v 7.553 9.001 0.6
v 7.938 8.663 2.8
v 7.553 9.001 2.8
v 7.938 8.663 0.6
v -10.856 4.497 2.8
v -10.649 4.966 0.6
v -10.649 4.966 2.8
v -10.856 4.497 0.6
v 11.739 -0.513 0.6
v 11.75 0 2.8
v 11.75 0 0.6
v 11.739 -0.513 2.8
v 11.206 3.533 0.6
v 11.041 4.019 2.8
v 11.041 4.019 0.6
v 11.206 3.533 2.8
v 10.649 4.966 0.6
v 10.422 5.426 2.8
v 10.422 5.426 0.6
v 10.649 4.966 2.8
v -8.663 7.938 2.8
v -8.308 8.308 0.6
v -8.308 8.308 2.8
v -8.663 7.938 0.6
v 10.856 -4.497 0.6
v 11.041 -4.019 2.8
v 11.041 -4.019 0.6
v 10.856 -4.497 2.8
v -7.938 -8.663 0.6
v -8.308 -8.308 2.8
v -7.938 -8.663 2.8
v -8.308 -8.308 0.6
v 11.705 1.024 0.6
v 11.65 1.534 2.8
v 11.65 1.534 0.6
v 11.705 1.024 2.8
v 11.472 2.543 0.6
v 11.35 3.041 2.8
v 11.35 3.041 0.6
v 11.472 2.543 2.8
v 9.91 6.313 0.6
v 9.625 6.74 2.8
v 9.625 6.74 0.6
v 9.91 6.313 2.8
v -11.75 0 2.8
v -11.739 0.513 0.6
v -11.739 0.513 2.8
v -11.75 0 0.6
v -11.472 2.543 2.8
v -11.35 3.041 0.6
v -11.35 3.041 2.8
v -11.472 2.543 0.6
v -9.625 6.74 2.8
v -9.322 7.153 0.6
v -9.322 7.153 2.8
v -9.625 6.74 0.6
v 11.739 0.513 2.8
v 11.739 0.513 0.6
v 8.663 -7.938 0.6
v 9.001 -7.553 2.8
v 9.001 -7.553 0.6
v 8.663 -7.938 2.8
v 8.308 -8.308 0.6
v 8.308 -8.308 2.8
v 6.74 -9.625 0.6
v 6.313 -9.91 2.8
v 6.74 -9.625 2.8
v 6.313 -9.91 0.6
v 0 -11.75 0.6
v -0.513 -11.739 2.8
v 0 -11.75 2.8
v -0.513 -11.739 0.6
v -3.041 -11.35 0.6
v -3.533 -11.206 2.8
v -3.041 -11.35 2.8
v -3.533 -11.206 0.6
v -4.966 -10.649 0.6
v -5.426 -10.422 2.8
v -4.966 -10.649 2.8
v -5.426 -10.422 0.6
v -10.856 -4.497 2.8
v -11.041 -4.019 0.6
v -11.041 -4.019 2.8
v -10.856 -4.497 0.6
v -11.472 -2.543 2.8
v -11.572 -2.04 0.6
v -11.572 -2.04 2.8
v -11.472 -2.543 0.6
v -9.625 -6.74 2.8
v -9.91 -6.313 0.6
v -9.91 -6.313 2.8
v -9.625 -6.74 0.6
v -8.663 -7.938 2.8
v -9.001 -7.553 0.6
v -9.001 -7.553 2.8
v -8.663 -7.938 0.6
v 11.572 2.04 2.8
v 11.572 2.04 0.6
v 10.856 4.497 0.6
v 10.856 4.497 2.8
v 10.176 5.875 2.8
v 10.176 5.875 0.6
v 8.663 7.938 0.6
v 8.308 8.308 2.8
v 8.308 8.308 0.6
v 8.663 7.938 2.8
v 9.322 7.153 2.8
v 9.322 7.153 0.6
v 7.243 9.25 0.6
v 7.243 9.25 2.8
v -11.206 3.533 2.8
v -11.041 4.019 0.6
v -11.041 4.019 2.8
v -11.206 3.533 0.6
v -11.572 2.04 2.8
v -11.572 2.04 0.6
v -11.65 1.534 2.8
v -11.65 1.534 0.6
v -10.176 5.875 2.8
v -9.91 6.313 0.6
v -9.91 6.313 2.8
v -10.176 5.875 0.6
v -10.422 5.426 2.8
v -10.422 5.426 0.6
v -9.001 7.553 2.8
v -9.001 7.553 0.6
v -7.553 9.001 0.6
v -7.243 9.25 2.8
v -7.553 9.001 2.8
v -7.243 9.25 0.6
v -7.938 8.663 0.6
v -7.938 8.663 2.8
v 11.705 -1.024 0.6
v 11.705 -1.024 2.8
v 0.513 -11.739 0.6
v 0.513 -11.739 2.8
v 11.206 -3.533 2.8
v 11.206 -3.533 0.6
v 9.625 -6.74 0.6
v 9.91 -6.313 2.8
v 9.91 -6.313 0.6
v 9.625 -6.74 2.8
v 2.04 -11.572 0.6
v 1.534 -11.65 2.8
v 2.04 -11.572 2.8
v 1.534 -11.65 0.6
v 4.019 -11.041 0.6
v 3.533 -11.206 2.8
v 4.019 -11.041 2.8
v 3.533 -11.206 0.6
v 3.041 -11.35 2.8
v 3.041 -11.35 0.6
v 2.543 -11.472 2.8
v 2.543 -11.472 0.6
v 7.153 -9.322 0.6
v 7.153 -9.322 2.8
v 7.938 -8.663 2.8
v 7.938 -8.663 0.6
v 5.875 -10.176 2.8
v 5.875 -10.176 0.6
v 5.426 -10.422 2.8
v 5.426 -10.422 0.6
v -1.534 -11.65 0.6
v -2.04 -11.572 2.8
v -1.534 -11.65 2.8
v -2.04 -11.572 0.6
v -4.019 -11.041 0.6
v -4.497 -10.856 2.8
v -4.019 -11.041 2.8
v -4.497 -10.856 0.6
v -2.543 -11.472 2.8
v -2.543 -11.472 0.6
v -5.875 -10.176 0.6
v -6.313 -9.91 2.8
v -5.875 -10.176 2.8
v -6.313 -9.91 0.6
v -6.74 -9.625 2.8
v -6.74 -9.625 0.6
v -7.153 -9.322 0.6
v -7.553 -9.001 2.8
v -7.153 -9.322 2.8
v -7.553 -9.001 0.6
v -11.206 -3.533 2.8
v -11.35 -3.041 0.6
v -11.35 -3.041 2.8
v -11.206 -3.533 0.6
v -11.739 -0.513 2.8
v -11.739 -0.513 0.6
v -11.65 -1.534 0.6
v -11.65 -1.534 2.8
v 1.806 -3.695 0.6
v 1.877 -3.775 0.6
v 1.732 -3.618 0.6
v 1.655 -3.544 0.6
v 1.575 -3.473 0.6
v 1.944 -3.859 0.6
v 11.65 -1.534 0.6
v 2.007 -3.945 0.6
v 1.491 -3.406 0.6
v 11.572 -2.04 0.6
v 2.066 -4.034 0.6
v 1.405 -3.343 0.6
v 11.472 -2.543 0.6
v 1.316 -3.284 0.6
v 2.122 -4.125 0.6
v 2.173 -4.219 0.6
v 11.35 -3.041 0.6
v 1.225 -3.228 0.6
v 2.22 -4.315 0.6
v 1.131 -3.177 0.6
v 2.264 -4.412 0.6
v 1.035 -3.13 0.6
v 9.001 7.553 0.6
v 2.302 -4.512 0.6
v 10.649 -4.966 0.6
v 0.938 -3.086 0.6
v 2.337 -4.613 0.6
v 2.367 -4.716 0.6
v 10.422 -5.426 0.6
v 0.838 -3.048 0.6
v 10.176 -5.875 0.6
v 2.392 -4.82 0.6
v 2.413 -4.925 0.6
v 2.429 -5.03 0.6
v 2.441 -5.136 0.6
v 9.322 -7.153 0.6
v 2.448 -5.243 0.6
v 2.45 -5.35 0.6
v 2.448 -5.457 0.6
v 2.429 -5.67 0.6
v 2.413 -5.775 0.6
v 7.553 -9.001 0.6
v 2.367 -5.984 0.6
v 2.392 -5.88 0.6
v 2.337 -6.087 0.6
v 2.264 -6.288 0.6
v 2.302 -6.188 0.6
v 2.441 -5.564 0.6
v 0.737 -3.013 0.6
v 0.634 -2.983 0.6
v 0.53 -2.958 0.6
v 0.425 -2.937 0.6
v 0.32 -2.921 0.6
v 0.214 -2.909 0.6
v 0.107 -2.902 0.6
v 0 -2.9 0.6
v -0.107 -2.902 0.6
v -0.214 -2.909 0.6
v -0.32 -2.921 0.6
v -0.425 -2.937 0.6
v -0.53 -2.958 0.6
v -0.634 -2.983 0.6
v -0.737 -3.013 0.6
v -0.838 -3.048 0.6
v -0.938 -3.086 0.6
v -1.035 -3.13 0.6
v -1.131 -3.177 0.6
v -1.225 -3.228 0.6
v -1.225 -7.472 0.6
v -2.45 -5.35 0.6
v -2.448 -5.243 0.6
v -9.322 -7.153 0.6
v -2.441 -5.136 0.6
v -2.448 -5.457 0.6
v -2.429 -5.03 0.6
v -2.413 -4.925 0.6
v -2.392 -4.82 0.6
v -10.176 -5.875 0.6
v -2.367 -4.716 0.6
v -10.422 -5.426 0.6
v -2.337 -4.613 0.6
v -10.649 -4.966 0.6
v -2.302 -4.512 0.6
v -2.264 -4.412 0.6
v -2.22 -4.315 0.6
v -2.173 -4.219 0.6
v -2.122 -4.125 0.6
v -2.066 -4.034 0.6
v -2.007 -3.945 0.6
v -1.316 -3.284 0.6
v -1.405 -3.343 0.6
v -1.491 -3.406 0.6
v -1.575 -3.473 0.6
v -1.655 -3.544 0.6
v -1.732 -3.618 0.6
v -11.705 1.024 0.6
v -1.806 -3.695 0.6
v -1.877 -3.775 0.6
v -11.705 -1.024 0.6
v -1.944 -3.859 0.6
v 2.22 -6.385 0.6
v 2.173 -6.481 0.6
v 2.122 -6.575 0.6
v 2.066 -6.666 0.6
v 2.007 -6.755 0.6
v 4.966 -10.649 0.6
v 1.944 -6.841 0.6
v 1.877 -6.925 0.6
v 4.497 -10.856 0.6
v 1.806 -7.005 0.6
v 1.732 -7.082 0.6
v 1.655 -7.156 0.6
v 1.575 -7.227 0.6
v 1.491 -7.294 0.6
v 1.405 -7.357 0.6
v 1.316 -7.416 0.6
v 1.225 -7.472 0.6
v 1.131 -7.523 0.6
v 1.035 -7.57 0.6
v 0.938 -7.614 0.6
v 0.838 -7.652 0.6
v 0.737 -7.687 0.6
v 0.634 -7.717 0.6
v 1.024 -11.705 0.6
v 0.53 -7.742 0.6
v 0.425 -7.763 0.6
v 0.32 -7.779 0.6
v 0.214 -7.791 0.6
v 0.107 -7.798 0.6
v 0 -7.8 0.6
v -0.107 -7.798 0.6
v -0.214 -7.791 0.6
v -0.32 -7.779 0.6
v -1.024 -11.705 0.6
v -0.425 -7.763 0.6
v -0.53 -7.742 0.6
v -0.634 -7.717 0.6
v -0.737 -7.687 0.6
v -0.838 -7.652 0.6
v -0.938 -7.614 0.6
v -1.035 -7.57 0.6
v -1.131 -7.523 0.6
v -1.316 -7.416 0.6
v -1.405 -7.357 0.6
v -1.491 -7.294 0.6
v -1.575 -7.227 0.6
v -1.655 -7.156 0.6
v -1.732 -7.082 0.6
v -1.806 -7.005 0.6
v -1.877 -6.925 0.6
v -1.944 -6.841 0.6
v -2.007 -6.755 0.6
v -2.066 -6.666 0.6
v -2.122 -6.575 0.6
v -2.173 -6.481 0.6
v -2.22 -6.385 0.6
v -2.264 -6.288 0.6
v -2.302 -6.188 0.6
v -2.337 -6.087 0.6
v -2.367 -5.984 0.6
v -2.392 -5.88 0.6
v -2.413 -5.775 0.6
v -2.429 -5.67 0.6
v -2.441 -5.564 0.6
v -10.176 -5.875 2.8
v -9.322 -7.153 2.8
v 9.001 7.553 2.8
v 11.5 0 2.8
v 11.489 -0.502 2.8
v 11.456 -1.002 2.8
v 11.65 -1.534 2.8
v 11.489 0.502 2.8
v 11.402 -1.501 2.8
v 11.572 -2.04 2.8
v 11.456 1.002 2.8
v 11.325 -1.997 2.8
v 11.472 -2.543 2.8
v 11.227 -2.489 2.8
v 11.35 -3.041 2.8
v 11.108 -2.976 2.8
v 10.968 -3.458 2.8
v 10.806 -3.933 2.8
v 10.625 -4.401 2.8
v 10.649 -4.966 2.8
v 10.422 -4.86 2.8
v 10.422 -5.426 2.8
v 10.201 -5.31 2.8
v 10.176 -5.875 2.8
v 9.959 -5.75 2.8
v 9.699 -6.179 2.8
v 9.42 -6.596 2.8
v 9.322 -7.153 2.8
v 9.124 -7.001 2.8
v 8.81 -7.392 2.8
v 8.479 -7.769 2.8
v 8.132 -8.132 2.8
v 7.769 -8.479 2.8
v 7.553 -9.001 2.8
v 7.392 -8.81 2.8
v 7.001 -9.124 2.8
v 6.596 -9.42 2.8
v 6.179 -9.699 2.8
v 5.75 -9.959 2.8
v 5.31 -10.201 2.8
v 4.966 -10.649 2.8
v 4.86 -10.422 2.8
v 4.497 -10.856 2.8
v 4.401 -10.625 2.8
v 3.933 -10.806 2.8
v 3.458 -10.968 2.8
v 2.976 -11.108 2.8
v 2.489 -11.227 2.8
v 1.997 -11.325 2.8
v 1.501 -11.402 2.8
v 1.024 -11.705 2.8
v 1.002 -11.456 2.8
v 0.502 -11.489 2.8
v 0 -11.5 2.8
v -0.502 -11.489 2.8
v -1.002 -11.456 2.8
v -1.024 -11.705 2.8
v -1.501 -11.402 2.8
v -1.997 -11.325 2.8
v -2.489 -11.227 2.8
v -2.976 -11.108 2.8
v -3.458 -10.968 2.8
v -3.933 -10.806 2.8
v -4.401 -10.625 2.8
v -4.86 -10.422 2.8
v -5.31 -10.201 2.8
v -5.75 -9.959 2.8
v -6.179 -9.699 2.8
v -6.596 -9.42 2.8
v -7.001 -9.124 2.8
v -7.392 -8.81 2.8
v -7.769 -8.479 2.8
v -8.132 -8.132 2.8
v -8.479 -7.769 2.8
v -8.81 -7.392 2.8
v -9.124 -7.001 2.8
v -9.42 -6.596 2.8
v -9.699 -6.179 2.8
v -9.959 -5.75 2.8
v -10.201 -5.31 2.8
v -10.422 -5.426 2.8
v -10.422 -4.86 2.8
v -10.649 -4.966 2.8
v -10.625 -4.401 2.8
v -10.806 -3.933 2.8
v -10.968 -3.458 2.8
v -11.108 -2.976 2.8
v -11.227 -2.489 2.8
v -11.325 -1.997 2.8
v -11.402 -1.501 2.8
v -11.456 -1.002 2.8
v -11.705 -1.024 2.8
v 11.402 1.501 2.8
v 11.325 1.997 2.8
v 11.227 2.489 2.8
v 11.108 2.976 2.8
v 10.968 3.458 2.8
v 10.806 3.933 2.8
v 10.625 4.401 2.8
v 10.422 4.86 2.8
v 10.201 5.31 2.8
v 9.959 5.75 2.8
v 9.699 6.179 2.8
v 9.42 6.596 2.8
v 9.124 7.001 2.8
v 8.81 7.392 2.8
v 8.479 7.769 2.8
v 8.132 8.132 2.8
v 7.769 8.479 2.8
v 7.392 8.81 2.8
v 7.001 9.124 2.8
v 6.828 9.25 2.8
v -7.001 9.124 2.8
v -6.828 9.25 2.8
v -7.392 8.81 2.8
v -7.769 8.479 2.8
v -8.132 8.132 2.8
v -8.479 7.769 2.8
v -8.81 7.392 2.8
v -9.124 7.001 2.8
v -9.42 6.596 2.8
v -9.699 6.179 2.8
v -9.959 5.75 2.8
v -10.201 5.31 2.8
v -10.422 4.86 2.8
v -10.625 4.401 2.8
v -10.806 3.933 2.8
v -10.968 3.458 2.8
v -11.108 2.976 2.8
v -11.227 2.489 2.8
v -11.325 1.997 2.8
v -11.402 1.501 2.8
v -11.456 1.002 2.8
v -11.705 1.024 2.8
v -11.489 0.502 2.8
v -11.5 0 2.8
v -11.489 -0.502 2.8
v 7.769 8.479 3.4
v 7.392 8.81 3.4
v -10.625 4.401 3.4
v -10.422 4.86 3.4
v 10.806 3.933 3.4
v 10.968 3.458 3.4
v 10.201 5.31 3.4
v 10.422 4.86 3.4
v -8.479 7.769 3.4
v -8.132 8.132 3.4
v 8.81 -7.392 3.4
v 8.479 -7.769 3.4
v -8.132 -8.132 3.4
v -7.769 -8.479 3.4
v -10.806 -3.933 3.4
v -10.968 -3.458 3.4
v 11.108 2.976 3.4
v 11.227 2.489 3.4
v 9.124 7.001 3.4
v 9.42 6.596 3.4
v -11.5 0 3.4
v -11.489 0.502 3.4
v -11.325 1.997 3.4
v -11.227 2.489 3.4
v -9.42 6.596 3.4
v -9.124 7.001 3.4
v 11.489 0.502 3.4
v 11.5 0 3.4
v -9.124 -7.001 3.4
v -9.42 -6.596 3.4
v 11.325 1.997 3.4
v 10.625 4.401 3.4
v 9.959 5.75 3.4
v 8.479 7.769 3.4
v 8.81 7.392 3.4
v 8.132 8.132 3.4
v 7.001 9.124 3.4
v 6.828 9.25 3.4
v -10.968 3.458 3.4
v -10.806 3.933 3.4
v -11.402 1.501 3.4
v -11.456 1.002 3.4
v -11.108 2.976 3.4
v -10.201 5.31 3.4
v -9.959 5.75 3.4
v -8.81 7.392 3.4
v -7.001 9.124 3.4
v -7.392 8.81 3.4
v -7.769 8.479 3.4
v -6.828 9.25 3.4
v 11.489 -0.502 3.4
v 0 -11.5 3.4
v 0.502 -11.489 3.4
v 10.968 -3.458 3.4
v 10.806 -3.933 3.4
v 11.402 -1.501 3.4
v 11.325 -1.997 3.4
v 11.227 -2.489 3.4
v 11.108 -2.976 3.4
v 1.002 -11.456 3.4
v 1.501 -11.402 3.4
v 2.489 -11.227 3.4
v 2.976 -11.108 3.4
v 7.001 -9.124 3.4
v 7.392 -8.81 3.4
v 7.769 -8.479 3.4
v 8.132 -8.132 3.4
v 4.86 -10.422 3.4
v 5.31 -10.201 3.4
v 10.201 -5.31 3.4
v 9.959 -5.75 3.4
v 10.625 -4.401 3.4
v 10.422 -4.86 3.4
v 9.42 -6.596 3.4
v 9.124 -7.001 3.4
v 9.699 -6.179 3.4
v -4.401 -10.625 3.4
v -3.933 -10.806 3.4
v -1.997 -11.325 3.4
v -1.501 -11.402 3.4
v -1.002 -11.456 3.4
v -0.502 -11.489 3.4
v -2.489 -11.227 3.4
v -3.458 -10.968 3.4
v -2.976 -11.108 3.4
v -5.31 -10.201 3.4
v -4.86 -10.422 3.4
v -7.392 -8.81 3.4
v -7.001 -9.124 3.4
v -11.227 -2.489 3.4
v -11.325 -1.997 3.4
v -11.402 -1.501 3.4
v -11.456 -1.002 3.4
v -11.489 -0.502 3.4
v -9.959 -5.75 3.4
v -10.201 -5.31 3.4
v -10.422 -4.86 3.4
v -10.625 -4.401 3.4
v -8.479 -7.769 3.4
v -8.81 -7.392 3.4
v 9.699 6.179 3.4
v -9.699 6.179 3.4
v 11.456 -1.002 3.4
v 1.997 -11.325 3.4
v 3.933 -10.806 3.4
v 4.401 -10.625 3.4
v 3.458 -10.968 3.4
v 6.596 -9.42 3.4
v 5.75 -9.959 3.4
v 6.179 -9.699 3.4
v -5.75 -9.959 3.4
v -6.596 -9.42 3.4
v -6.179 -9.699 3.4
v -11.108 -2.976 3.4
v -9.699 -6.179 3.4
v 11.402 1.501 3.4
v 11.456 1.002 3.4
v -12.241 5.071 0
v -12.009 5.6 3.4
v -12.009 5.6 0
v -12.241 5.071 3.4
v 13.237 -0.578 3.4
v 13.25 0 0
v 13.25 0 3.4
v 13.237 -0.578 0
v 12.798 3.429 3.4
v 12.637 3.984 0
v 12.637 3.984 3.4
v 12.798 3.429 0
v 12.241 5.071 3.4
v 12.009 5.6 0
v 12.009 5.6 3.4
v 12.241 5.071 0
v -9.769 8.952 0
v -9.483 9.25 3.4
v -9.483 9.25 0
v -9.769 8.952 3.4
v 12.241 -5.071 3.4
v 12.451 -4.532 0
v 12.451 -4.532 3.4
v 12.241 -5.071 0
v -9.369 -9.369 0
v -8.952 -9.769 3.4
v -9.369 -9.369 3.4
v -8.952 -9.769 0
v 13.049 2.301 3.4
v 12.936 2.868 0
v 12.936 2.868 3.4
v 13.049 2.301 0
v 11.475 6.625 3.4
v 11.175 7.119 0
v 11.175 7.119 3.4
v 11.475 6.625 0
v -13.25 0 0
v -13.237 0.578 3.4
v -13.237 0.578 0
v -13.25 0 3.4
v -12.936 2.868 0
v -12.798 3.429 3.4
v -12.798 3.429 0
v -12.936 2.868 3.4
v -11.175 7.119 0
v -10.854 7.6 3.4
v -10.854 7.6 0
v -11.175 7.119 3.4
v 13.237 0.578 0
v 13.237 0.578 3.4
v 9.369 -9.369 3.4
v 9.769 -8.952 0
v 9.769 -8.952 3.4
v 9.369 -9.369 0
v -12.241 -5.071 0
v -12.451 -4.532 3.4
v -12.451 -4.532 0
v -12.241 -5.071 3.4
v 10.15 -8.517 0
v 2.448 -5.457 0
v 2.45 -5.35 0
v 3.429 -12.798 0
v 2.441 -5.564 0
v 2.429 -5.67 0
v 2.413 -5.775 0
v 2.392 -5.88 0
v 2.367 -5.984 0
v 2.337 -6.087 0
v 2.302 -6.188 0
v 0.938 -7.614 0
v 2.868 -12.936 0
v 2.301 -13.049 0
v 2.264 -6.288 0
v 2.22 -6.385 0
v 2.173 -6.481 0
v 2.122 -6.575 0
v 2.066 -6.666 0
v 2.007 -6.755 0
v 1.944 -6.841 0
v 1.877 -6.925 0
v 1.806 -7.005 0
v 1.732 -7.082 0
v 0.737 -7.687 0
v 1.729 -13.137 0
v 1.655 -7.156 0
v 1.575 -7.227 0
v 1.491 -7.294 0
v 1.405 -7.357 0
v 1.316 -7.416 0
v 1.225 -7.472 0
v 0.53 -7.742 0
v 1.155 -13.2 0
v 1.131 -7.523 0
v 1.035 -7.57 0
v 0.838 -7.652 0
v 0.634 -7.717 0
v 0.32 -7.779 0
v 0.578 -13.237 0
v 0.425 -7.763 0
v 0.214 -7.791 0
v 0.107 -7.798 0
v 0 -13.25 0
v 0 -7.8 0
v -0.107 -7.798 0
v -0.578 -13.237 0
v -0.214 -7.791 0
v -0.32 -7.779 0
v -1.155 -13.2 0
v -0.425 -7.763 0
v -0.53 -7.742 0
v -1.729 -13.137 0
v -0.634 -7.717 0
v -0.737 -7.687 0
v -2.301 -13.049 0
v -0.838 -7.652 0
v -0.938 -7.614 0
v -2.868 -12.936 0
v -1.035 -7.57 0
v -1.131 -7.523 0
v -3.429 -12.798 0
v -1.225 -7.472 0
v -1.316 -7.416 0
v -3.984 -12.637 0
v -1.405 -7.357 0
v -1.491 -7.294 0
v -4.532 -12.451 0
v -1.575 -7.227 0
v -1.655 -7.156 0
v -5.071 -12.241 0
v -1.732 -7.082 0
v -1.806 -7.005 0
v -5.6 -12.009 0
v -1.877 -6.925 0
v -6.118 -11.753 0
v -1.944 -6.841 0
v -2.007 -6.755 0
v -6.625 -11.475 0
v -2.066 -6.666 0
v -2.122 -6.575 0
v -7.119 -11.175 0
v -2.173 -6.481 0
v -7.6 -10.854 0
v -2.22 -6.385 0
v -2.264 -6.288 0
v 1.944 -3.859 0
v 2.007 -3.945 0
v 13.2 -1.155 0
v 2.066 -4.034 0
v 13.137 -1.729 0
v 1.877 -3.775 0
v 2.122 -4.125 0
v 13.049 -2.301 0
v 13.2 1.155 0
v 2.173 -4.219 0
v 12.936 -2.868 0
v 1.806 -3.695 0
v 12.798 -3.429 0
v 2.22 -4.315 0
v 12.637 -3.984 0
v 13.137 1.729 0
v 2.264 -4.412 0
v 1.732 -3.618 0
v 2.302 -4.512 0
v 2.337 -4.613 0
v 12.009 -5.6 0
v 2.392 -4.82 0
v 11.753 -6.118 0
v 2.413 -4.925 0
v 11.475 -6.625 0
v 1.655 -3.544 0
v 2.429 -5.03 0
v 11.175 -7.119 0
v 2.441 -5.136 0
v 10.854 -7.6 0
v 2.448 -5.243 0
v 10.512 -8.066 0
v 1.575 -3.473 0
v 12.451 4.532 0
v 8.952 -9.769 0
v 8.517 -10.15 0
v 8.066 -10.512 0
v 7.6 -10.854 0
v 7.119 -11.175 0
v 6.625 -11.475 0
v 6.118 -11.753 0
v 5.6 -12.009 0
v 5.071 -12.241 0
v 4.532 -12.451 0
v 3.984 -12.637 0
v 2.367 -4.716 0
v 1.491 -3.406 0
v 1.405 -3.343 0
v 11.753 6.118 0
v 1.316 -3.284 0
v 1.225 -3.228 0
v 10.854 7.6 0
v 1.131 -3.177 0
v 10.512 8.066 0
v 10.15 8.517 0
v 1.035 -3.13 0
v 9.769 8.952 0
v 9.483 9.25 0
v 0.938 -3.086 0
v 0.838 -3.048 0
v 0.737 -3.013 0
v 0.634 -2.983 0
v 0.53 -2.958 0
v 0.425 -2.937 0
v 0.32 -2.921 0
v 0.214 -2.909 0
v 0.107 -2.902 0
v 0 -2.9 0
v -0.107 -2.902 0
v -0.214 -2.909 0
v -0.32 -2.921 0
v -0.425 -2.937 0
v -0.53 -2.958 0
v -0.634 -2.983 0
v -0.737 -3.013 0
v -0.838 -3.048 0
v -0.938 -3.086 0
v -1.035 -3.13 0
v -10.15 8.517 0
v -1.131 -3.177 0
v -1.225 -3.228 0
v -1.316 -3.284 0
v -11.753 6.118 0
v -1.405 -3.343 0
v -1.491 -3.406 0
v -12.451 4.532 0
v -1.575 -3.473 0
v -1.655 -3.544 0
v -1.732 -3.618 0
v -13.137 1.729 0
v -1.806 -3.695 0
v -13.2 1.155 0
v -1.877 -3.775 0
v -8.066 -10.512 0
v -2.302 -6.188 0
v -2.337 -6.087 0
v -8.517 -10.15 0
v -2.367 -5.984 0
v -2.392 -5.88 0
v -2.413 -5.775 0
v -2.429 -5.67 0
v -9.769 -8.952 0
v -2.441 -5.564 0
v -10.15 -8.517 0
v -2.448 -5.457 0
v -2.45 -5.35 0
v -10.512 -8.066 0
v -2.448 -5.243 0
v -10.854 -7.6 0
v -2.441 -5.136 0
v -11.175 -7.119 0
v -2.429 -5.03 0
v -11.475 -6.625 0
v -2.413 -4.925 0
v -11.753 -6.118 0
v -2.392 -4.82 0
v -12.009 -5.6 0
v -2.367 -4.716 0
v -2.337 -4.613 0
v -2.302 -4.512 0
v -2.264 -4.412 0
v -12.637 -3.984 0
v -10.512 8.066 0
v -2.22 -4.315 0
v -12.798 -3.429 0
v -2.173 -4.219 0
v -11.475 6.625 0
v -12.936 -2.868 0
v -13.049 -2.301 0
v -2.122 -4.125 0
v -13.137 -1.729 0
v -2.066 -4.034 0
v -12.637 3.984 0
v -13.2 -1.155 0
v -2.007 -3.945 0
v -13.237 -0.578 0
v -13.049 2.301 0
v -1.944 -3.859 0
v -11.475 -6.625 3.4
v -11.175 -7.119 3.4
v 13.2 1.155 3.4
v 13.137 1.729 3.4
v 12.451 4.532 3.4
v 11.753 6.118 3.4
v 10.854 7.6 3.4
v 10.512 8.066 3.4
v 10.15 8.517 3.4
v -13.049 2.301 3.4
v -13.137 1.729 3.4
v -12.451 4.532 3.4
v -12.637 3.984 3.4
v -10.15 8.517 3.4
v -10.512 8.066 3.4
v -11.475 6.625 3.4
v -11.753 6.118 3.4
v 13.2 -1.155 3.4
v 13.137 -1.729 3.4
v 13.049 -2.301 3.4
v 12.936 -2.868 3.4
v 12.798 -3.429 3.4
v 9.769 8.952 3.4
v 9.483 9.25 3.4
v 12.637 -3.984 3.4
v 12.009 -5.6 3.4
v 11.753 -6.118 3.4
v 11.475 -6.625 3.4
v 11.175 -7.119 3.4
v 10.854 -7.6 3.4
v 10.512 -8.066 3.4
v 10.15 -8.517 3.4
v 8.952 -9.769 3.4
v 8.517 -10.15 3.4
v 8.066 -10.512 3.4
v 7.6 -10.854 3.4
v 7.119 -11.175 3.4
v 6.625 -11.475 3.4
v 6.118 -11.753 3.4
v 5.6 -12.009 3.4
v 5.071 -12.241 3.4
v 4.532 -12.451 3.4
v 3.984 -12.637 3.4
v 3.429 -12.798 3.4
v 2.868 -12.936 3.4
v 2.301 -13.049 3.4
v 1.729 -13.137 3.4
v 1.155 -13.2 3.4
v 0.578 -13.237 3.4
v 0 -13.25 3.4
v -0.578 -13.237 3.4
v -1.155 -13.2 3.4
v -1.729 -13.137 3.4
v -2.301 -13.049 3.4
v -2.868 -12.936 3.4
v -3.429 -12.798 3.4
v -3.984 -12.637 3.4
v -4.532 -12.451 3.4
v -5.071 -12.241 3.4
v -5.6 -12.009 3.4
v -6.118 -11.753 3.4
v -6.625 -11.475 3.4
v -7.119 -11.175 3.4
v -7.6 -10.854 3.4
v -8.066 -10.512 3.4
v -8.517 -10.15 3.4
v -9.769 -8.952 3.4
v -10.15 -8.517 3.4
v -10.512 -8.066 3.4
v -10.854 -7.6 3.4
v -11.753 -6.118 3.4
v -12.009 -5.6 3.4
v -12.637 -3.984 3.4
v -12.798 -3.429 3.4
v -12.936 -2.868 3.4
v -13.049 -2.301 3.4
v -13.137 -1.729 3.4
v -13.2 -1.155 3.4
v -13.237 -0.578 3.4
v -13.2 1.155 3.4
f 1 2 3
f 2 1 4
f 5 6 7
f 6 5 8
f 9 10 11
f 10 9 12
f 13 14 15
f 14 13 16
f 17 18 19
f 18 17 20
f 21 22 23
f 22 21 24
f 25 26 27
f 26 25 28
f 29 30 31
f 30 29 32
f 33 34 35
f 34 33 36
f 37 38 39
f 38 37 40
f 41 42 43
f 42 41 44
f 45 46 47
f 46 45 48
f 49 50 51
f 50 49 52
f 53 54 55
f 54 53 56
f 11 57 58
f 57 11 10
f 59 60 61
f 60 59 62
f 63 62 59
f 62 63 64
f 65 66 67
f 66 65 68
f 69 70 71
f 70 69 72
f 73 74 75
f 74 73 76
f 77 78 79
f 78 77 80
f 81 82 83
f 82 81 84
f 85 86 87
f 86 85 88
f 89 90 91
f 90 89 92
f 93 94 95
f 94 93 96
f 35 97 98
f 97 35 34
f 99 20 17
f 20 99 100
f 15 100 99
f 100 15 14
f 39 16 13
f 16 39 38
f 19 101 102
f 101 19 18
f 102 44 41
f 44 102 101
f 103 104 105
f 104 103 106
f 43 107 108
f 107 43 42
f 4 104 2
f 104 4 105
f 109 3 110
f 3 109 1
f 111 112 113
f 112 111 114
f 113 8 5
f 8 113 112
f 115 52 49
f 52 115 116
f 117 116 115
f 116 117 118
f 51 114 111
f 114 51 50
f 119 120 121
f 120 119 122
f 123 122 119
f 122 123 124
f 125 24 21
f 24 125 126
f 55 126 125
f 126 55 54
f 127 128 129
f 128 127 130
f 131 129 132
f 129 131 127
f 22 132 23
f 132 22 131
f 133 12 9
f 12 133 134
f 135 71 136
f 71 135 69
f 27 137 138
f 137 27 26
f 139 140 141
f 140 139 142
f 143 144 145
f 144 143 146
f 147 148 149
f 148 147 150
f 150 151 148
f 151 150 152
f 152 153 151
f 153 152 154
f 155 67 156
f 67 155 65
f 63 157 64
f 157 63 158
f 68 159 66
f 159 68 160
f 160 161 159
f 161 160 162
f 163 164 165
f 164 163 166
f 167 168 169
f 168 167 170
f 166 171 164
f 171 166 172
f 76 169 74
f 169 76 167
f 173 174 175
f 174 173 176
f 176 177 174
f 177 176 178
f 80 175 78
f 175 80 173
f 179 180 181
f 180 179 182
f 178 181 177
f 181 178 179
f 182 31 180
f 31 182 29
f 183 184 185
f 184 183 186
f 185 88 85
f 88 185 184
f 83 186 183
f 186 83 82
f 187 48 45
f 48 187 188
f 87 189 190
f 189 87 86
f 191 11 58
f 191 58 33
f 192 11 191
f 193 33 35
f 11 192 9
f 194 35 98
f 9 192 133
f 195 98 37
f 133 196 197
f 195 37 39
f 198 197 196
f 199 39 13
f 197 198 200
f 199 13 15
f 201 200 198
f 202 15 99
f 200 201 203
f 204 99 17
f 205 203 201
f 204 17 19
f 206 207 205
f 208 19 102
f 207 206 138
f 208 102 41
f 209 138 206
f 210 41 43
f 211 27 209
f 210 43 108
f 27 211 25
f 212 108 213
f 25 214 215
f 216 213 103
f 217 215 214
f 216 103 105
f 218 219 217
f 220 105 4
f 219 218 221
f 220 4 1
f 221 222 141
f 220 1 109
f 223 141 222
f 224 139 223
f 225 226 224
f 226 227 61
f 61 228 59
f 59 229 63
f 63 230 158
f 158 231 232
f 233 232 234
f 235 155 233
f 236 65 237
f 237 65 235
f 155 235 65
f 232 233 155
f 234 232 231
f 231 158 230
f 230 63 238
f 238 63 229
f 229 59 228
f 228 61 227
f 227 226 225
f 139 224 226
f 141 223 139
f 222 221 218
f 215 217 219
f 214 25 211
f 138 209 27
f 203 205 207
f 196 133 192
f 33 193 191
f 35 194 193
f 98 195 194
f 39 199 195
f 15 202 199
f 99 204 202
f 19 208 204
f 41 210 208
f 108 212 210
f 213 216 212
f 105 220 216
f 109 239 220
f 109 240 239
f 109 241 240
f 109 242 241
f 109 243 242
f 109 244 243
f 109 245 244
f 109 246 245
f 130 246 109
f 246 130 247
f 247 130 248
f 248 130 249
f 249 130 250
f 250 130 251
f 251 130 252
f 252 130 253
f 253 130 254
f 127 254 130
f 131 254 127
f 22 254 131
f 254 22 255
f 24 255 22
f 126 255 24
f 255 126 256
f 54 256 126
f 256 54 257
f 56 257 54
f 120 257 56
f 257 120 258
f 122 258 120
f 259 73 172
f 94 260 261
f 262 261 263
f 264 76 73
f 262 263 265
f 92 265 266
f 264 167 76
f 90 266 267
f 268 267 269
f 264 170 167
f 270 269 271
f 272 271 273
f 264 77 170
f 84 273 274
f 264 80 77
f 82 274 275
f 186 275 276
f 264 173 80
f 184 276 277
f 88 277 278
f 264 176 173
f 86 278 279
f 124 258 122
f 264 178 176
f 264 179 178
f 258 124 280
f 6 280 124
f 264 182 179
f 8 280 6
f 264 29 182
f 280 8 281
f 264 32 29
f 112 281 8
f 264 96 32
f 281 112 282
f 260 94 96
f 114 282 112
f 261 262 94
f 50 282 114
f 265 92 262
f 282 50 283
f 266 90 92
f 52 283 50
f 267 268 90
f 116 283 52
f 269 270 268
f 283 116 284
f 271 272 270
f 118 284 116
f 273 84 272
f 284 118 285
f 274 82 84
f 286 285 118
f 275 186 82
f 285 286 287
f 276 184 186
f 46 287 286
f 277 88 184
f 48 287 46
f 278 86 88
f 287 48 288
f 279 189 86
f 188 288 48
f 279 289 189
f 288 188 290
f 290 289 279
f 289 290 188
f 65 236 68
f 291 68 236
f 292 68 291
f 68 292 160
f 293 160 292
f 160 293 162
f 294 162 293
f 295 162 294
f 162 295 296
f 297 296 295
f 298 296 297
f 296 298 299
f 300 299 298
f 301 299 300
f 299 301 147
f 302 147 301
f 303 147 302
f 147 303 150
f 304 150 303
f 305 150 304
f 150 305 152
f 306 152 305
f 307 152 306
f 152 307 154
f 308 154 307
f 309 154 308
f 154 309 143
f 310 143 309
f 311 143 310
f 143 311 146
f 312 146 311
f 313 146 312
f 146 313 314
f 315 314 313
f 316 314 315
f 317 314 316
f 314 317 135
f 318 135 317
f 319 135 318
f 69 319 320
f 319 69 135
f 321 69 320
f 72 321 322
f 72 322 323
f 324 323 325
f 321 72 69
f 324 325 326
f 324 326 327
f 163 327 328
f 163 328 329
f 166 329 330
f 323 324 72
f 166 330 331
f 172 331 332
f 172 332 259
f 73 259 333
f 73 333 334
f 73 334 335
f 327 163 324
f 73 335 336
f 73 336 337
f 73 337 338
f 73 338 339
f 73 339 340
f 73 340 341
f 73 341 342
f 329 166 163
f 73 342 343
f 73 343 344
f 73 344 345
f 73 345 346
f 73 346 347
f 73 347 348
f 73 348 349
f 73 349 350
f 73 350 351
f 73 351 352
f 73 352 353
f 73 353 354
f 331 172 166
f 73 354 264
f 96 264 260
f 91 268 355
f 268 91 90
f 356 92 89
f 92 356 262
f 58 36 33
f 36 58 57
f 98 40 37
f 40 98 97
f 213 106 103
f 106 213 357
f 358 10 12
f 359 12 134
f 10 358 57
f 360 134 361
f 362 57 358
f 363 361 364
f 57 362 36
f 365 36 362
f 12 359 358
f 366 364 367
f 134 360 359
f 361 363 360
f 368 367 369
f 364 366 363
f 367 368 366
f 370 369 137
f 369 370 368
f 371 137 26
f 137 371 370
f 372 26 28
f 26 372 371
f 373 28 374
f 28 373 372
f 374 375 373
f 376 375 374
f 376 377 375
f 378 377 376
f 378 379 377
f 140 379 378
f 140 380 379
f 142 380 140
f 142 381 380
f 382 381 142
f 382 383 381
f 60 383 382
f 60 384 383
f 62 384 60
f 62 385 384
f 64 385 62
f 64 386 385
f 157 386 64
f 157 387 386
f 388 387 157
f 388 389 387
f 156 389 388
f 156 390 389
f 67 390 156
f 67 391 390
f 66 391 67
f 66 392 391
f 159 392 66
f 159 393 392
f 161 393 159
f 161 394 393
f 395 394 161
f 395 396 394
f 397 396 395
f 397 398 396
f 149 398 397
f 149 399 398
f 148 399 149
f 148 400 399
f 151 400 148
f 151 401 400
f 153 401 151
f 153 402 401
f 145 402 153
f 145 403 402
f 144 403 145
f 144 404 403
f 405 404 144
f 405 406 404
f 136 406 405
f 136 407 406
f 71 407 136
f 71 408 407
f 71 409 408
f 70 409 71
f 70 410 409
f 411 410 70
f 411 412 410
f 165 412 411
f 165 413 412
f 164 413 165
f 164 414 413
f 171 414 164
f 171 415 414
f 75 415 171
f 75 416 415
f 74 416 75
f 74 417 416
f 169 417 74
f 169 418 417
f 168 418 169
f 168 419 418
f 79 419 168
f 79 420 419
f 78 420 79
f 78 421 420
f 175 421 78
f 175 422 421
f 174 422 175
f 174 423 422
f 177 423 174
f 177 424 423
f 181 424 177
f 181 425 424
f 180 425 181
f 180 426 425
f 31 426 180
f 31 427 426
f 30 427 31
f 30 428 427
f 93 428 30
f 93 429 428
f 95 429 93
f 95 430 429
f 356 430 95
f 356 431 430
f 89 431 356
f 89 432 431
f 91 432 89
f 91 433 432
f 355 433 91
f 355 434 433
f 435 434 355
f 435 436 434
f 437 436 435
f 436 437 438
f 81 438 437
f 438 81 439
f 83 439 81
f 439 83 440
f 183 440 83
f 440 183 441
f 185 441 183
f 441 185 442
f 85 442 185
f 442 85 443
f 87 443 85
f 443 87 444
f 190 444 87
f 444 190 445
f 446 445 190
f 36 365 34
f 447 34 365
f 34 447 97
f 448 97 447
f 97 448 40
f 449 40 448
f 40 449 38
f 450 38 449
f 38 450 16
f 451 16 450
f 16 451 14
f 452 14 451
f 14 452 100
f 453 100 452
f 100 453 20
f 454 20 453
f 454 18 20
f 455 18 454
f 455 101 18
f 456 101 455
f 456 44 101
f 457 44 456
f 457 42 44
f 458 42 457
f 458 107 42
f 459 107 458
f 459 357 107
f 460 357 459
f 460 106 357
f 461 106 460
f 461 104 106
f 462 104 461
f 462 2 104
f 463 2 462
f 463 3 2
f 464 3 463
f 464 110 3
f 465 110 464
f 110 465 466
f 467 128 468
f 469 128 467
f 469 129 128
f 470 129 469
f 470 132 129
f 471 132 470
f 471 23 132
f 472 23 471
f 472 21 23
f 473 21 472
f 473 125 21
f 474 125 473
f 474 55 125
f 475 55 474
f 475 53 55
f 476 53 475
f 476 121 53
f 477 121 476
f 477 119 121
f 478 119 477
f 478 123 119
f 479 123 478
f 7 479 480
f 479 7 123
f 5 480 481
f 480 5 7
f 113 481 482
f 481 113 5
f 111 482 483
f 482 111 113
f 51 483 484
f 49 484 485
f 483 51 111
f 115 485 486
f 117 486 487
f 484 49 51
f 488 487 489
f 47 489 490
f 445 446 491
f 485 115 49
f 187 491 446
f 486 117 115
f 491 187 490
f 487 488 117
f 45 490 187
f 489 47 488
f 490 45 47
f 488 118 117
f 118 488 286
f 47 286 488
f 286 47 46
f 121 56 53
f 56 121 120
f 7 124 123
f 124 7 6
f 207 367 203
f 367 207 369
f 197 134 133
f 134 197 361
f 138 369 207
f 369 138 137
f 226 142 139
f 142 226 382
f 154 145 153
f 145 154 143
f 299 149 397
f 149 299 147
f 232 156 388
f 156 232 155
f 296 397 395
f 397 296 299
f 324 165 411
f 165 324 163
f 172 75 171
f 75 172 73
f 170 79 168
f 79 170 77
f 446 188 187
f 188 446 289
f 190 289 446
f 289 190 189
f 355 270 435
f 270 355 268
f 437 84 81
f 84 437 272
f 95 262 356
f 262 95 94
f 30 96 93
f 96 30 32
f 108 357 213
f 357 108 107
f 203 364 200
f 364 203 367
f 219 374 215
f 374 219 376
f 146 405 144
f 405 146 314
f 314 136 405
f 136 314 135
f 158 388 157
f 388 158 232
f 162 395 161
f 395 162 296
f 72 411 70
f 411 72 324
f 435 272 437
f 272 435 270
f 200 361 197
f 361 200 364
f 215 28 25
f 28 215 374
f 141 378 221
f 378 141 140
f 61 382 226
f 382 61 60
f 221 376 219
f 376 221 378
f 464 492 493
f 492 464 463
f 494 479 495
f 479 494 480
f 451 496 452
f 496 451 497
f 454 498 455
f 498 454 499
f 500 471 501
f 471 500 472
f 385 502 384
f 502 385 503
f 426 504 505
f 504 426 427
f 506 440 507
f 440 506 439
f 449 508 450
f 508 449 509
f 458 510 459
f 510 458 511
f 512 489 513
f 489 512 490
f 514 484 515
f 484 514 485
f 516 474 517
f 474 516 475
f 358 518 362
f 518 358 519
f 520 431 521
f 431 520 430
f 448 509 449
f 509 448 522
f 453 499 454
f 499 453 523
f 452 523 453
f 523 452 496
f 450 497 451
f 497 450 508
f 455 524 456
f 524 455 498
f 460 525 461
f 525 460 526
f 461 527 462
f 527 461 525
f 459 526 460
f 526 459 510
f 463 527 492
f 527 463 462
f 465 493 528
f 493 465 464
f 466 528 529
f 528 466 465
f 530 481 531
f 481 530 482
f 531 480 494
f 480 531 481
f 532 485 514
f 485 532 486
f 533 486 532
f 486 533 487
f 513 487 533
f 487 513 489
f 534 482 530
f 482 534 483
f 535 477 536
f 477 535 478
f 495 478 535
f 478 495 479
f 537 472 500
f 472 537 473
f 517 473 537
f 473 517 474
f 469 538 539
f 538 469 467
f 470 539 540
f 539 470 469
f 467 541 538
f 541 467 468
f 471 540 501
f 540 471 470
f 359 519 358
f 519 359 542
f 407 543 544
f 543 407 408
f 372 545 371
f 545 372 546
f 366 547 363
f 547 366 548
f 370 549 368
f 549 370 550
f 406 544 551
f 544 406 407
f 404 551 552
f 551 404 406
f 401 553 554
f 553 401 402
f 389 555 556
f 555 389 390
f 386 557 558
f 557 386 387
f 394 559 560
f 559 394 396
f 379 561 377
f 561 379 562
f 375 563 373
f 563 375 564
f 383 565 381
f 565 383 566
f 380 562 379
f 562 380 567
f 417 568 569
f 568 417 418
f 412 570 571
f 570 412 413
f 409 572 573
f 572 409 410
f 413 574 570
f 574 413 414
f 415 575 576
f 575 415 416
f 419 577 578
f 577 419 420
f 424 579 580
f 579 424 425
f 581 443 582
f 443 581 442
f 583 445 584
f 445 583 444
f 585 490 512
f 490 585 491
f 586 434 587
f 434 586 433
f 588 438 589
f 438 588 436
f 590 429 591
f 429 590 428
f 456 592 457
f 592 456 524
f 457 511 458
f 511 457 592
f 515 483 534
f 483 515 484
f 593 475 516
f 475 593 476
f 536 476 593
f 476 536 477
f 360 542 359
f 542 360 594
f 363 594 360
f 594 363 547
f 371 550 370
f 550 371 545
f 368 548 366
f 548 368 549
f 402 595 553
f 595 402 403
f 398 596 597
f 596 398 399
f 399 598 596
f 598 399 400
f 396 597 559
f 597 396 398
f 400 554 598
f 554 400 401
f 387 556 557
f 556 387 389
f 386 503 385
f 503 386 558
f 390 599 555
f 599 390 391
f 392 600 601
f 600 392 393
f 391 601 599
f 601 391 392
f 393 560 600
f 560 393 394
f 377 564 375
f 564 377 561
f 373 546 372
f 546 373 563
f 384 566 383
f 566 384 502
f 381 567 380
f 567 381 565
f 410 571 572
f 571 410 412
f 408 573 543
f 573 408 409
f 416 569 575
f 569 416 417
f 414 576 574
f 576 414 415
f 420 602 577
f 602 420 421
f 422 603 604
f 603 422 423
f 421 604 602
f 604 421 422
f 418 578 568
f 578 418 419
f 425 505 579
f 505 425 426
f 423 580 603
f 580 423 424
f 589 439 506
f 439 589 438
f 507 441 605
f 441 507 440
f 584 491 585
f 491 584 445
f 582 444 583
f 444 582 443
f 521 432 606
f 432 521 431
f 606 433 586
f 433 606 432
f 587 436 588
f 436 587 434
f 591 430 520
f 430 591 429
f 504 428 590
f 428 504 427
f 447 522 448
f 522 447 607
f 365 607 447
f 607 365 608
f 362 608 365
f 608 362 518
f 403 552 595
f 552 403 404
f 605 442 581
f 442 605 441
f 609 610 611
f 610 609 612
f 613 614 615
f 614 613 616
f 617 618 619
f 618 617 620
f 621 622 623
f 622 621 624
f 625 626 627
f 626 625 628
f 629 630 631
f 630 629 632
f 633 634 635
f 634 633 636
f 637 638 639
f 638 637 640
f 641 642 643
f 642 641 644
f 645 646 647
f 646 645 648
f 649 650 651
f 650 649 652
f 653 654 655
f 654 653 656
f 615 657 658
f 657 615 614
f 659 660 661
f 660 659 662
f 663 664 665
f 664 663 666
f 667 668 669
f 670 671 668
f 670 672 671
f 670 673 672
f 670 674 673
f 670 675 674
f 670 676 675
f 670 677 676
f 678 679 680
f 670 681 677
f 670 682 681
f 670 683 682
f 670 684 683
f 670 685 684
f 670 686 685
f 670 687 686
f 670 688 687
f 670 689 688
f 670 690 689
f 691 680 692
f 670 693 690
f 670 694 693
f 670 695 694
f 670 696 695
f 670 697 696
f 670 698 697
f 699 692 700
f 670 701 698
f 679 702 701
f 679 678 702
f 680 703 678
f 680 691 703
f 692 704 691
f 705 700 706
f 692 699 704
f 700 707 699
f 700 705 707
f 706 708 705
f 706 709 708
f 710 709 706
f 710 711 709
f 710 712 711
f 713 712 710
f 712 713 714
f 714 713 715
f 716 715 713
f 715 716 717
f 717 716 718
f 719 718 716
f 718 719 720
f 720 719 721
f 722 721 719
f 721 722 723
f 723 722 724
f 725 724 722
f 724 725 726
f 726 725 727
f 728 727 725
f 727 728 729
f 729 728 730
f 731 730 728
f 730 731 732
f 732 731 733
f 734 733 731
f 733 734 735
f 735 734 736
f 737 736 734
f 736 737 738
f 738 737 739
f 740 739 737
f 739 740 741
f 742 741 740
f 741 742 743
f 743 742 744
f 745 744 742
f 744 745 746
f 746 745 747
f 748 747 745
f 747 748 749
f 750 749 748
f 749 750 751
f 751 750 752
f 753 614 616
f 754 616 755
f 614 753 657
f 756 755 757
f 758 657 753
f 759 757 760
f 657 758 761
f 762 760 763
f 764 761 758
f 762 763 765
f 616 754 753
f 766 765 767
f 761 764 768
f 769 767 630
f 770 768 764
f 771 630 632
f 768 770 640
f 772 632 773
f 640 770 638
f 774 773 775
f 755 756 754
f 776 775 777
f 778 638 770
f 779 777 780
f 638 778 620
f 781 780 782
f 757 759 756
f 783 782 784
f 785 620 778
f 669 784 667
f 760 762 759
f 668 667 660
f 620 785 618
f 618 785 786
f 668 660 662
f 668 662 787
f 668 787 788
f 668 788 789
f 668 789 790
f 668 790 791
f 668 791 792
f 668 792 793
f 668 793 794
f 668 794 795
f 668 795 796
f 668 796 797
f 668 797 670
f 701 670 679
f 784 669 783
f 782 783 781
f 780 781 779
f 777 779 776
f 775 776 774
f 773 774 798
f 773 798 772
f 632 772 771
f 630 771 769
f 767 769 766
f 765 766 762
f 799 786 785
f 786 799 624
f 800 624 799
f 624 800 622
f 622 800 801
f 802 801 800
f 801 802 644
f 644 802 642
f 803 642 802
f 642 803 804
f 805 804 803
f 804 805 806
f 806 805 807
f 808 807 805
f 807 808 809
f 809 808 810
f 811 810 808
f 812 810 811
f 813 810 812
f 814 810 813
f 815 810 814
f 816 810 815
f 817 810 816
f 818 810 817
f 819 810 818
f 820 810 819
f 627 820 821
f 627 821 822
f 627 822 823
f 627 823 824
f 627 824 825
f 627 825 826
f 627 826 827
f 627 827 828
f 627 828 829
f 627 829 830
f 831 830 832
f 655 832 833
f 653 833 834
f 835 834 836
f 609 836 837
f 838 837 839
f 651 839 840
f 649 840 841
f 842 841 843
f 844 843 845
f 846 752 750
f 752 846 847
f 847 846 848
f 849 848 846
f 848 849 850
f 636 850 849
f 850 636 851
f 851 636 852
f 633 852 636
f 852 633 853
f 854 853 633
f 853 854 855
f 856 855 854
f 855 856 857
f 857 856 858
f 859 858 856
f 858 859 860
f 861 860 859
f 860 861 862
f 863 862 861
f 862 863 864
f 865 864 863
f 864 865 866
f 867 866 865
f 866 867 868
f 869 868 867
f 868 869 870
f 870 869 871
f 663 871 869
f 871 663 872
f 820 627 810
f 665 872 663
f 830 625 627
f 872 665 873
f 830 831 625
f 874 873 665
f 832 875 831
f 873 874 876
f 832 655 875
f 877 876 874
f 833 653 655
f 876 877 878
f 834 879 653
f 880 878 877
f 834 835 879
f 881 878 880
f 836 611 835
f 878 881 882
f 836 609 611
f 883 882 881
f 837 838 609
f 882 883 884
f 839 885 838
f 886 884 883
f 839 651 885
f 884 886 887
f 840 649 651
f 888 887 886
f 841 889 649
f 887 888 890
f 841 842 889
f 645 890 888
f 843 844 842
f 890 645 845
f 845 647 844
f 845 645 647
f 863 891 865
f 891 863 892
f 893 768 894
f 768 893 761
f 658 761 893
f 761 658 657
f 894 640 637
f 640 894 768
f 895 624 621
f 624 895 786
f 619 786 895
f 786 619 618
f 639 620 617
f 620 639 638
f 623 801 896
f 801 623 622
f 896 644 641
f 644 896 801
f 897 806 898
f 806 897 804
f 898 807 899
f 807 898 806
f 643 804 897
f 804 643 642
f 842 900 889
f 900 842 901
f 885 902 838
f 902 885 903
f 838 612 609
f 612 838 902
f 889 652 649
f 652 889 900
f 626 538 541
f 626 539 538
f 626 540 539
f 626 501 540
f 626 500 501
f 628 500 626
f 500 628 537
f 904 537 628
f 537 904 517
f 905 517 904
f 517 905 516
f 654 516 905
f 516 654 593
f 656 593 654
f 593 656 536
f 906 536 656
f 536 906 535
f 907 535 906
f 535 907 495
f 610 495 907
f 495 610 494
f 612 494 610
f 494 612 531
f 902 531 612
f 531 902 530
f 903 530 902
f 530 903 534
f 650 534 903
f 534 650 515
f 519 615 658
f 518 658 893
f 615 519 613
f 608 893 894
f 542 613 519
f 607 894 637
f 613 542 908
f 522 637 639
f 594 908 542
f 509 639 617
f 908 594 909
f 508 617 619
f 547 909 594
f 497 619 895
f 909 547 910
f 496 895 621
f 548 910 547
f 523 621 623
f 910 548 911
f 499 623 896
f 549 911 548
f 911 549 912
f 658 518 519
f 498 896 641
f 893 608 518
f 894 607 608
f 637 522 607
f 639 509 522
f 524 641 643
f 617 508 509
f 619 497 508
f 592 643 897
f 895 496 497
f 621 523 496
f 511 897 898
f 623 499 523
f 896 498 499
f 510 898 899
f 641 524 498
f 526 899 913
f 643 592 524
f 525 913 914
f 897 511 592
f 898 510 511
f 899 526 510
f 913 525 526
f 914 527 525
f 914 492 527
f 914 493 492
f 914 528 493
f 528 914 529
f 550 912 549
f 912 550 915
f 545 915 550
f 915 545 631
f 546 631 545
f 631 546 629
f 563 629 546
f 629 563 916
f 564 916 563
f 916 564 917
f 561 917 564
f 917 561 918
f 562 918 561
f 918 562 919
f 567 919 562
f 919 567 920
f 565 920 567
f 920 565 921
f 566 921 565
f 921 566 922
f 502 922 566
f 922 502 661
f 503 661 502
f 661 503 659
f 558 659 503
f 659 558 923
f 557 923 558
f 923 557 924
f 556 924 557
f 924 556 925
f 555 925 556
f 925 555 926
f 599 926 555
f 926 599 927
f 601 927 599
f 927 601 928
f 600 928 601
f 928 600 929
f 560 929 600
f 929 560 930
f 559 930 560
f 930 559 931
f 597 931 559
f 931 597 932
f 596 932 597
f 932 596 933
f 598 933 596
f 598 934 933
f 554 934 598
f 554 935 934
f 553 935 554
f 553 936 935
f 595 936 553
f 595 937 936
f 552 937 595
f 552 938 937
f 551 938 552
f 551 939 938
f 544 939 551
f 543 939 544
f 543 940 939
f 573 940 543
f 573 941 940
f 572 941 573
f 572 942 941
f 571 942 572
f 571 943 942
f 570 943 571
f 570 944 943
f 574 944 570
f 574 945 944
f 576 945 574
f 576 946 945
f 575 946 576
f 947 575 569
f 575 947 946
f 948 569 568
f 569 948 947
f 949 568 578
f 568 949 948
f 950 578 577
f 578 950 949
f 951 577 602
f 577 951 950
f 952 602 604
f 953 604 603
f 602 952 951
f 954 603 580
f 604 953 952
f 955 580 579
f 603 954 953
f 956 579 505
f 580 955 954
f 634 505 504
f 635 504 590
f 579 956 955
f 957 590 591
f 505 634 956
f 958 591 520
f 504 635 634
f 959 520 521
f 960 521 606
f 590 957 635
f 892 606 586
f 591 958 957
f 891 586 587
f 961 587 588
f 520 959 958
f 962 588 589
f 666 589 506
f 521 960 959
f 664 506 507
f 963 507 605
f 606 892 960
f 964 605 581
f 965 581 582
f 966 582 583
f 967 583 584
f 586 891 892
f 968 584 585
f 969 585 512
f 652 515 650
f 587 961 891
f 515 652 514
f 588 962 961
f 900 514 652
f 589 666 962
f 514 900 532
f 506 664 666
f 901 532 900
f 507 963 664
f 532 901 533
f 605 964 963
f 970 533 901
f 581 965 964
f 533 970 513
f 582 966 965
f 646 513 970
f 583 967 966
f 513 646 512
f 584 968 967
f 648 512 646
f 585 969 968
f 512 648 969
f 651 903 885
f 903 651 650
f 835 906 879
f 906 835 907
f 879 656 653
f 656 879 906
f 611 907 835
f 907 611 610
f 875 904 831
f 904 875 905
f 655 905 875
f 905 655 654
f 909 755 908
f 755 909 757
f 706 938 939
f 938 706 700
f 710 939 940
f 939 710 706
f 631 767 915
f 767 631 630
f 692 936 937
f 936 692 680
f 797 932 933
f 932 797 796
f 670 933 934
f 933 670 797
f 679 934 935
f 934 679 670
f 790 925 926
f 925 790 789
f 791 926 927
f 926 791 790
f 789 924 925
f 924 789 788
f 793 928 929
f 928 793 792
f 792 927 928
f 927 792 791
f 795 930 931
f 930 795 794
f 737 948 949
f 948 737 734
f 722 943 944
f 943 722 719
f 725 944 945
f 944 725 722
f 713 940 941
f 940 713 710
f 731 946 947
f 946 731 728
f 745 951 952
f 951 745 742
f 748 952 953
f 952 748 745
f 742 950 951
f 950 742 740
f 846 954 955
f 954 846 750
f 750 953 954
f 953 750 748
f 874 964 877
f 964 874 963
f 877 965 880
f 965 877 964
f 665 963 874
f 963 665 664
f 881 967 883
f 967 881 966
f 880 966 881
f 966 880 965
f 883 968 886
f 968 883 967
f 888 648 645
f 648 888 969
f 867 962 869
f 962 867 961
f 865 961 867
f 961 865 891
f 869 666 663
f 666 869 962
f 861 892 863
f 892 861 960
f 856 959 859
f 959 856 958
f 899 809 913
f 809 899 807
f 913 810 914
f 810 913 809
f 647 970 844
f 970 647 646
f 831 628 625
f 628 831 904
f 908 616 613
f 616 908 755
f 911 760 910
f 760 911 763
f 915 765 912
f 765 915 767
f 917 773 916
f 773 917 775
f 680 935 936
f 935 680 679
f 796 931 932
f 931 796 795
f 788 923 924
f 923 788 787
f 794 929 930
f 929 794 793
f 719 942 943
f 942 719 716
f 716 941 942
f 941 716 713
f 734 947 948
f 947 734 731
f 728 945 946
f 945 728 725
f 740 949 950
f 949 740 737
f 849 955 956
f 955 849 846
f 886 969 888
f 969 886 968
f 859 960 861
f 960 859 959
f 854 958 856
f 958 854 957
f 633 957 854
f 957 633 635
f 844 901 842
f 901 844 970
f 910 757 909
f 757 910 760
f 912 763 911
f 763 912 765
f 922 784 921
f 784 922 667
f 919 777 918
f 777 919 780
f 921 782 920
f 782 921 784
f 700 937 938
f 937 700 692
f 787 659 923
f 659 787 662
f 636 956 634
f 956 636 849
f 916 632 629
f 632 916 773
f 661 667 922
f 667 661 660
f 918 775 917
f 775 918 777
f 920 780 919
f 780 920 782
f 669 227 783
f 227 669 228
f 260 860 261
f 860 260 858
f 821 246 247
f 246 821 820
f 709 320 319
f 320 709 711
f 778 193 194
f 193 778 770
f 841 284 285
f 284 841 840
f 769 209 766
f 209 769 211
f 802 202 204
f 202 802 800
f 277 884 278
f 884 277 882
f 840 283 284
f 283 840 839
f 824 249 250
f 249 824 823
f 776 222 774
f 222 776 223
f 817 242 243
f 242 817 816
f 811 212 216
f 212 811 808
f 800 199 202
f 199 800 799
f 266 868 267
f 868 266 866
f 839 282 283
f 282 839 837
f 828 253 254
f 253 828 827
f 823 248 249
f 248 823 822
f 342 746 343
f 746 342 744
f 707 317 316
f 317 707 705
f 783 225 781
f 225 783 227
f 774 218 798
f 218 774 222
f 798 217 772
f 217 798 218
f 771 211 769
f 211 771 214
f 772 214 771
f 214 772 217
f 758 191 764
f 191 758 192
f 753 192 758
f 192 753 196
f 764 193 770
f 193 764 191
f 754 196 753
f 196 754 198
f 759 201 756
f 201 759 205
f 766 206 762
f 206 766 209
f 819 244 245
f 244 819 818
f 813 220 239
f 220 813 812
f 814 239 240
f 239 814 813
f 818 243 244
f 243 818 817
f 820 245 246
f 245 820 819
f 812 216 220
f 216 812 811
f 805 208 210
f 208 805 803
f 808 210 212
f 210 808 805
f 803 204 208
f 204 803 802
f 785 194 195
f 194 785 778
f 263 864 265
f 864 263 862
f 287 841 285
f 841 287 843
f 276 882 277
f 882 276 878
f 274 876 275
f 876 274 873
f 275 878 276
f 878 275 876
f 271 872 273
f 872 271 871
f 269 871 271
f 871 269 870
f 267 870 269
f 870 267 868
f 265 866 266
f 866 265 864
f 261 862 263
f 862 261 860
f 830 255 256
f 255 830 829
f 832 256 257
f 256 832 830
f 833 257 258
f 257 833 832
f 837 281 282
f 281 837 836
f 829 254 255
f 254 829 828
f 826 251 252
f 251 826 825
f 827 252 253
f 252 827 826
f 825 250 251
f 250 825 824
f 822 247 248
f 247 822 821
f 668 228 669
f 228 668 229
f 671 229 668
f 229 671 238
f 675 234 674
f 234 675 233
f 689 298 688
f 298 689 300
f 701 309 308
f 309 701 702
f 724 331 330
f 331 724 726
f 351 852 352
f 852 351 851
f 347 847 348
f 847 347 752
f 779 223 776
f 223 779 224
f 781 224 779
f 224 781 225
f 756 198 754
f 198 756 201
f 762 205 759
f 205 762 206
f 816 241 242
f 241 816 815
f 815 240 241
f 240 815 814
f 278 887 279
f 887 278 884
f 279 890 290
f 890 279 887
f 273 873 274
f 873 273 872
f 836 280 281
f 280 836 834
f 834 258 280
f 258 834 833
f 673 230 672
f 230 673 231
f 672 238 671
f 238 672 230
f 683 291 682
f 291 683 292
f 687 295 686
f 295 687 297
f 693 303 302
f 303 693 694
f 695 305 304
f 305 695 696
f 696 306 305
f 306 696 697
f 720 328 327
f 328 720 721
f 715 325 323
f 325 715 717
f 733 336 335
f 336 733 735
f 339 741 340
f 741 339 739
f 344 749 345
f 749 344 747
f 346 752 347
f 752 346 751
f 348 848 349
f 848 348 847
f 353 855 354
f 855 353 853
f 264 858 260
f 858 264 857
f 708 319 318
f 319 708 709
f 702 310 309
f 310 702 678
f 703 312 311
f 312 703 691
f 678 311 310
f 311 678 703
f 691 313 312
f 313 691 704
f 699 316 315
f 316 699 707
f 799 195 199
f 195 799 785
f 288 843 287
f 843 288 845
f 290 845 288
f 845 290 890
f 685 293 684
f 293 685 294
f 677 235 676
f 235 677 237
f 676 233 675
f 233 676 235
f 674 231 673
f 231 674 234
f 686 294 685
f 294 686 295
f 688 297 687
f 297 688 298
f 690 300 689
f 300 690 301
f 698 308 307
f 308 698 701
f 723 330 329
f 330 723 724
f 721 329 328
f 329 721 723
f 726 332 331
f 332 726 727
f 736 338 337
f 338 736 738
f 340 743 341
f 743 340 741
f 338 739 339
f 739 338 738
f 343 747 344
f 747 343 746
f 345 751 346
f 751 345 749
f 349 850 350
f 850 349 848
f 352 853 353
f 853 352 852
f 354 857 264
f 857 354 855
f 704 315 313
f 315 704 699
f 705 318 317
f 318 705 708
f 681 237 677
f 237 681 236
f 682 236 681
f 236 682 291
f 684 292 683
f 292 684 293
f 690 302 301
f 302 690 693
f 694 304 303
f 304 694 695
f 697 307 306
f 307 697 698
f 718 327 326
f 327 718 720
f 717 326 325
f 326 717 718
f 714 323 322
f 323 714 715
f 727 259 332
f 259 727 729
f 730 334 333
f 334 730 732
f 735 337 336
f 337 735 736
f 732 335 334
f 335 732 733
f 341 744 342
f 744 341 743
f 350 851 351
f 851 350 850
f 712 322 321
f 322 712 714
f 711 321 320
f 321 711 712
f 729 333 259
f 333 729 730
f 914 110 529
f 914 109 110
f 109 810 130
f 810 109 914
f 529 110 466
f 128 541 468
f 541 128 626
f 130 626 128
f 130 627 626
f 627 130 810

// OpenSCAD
$fn=36*4;
OUTER_DIAMETER=26.5;

module keylabel(){
    difference(){
        cylinder(d=OUTER_DIAMETER,h=3.4);
        translate([0,-OUTER_DIAMETER/2+2.4+5.5,-.2])
            cylinder(d=4.9,h=3);
        translate([0,0,.6]) {
            cylinder(d=23.5,h=2.2);
            cylinder(d=23.0,h=3);
        }
        translate([-15,OUTER_DIAMETER/2-4,0])
            cube([30,30,30]);

    }
}

keylabel();
